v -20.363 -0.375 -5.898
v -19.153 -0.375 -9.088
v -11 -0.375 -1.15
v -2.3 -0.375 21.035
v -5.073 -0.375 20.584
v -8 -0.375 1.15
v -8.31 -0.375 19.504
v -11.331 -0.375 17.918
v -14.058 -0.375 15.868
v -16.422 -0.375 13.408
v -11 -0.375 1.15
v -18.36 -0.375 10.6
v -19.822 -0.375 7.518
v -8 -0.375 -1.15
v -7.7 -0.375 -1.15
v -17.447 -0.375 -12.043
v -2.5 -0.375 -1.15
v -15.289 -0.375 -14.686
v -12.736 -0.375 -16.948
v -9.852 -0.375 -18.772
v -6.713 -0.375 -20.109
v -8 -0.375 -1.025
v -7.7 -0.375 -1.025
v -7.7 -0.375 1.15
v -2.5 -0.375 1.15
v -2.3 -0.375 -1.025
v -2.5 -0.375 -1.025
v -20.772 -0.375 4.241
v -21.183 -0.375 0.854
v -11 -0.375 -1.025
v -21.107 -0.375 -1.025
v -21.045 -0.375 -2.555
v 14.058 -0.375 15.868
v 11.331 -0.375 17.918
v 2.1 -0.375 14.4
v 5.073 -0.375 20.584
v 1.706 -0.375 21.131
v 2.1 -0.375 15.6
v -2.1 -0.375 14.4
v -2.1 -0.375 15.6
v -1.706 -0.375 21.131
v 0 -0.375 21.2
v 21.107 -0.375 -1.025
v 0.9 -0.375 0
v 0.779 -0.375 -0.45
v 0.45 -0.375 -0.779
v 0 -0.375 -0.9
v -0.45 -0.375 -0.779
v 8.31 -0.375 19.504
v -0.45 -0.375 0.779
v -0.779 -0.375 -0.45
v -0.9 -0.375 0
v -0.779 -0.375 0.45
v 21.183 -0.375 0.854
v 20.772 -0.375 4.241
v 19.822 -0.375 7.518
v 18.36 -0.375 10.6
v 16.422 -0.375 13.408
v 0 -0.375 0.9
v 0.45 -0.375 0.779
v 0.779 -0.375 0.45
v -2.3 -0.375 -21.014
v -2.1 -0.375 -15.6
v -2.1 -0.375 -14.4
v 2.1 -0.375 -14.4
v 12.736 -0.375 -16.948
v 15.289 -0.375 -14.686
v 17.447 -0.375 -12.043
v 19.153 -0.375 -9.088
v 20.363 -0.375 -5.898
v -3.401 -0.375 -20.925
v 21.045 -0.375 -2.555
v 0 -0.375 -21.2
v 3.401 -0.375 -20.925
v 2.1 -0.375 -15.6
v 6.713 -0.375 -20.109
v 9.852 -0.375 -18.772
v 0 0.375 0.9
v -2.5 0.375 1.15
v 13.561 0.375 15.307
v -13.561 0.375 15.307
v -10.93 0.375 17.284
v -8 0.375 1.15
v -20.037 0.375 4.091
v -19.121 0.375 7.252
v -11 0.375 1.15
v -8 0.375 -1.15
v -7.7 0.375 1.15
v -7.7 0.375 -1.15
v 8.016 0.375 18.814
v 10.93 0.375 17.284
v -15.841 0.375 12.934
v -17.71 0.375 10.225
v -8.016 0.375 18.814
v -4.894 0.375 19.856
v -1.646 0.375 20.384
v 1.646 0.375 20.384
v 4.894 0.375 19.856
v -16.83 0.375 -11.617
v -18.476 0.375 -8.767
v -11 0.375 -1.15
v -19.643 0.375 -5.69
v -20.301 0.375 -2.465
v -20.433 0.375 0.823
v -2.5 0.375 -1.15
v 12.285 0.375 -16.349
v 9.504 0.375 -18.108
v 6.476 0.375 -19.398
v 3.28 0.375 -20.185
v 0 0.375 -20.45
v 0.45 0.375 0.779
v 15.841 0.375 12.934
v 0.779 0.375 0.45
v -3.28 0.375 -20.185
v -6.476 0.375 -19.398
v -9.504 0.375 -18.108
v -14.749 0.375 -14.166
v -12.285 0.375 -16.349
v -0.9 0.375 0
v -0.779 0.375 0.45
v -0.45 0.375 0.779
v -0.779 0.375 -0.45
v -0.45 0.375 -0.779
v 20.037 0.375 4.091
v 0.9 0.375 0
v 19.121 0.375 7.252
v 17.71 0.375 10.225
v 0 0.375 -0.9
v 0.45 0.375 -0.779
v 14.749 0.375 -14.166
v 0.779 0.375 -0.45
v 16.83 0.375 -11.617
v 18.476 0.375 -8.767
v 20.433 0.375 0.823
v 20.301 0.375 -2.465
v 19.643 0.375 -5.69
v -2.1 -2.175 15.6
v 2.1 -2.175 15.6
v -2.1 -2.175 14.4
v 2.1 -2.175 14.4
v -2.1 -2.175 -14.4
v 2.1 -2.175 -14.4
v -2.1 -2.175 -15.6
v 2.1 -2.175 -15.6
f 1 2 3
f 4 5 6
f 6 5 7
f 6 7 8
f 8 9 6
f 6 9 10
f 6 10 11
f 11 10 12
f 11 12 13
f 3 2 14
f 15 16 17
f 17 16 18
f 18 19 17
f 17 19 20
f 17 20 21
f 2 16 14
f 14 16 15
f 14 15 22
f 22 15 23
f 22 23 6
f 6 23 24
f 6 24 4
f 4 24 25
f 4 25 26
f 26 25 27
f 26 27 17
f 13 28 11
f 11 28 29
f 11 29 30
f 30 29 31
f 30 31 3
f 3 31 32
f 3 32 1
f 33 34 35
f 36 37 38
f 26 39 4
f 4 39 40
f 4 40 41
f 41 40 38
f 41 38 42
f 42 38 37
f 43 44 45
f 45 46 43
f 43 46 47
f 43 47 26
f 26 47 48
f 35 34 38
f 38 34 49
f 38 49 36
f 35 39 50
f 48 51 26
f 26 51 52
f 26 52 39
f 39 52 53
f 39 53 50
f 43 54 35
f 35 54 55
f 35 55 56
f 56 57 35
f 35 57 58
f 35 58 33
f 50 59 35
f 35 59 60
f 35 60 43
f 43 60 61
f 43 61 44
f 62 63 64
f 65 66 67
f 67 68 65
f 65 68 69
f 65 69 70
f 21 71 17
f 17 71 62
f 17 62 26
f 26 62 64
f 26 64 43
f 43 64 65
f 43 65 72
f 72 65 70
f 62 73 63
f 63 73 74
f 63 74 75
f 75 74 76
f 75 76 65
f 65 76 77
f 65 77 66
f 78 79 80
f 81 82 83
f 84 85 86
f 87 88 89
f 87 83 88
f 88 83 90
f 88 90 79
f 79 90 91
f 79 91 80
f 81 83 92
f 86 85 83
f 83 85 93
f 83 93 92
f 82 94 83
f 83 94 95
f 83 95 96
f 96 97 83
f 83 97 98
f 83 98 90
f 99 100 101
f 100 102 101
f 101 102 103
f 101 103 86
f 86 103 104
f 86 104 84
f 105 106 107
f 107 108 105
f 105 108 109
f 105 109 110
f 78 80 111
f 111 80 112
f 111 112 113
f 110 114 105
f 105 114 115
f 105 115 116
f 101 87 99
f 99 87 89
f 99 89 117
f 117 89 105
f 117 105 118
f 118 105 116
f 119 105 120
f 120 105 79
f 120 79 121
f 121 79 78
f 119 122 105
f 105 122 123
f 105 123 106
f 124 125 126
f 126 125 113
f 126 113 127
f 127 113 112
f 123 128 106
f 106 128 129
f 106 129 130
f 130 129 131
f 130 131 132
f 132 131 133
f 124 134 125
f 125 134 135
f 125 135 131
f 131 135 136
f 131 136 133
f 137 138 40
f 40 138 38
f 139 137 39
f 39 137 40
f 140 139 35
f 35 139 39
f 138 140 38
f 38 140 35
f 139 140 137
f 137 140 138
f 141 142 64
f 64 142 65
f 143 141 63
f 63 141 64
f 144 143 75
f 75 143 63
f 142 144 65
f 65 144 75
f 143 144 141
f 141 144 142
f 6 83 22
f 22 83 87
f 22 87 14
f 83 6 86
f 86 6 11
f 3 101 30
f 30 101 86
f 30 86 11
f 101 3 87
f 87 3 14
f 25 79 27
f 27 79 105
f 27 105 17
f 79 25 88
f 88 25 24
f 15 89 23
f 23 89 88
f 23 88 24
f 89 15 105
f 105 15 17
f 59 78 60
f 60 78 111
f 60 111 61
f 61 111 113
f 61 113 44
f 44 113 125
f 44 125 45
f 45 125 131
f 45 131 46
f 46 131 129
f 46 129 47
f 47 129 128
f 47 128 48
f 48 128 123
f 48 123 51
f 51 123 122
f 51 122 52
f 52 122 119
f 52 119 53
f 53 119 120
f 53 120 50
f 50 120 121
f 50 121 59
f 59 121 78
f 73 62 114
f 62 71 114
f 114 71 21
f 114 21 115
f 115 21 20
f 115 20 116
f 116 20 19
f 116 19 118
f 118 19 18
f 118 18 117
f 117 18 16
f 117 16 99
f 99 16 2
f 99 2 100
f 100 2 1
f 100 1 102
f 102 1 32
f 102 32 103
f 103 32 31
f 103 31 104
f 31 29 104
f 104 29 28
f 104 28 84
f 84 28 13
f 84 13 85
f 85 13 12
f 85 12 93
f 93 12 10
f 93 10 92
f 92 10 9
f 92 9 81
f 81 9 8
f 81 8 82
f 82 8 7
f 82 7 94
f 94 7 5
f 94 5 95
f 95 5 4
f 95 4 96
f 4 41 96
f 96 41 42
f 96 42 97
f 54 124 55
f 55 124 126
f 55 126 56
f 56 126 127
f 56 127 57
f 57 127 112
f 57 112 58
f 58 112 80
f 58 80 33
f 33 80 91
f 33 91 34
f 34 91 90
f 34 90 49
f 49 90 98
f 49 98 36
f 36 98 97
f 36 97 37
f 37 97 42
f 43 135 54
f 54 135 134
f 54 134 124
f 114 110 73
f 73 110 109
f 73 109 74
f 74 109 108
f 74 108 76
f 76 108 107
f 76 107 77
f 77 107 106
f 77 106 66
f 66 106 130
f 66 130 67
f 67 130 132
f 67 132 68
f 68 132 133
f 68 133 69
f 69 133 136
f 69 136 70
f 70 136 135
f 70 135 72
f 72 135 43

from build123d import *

# Parameters (mm, degrees)
FRONT_W                                  = 21.45
FRONT_H                                  = 0.75
SKETCH1_W                                = 4.2
SKETCH1_H                                = 1.2
HOLDERS_DEPTH                            = 1.8
HOLES_START                              = -0.375
HOLES_MOUNT_CALENDAR_PATTERN_OUTLINE_W   = 3
HOLES_MOUNT_CALENDAR_PATTERN_OUTLINE_H   = 2.3
HOLES_MOUNT_CALENDAR_PATTERN_OUTLINE_W_2 = 5.2
HOLES_MOUNT_CALENDAR_PATTERN_OUTLINE_R   = 0.9
HOLES_MOUNT_CALENDAR_PATTERN_DEPTH       = 0.75
CHAMFER1_SIZE                            = 1


# Read off the part's stored shape, not the designer's step: Holes Mount & Calendar & Pattern
with BuildPart() as part:
    # Front → Base (revolve)
    with BuildSketch(Plane.XY, mode=Mode.PRIVATE) as base_sk:
        with Locations((-10.725, 0)):
            Rectangle(FRONT_W, FRONT_H)
    revolve(base_sk.sketch.rotate(Axis((0, 0, 0), (0, 1, 0)), 270), axis=Axis((0, 0, 0), (0, 1, 0)))

    # Sketch1 → Holders (add)
    with BuildSketch(Plane.XZ.offset(0.375)):
        with Locations((0, 15)):
            Rectangle(SKETCH1_W, SKETCH1_H)
        with Locations((0, -15)):
            Rectangle(SKETCH1_W, SKETCH1_H)
    extrude(amount=HOLDERS_DEPTH)

    # Holes Mount & Calendar & Pattern outline → Holes Mount & Calendar & Pattern (cut)
    with BuildSketch(Plane(origin=(0, 0, 0), x_dir=(1, 0, 0), z_dir=(0, 1, 0)).offset(HOLES_START)):
        with Locations((-9.5, 0)):
            Rectangle(HOLES_MOUNT_CALENDAR_PATTERN_OUTLINE_W, HOLES_MOUNT_CALENDAR_PATTERN_OUTLINE_H)
        with Locations((-5.1, 0)):
            Rectangle(HOLES_MOUNT_CALENDAR_PATTERN_OUTLINE_W_2, HOLES_MOUNT_CALENDAR_PATTERN_OUTLINE_H)
        Circle(HOLES_MOUNT_CALENDAR_PATTERN_OUTLINE_R)
    extrude(amount=HOLES_MOUNT_CALENDAR_PATTERN_DEPTH, mode=Mode.SUBTRACT)

    # Chamfer1
    # the kernel refuses this chamfer: 1 mm, written as the material it takes off along each edge
    with BuildSketch(Plane(origin=(0, 0.375, 0), x_dir=(0, 0, -1), z_dir=(1, 0, 0))) as chamfer1_piece_1:
        Polygon((21.45, -CHAMFER1_SIZE), (21.45 - CHAMFER1_SIZE, 0), (21.45, 0), align=None)
    revolve(axis=Axis((0, 0.375, 0), (0, 1, 0)), mode=Mode.SUBTRACT)


solid = part.part
